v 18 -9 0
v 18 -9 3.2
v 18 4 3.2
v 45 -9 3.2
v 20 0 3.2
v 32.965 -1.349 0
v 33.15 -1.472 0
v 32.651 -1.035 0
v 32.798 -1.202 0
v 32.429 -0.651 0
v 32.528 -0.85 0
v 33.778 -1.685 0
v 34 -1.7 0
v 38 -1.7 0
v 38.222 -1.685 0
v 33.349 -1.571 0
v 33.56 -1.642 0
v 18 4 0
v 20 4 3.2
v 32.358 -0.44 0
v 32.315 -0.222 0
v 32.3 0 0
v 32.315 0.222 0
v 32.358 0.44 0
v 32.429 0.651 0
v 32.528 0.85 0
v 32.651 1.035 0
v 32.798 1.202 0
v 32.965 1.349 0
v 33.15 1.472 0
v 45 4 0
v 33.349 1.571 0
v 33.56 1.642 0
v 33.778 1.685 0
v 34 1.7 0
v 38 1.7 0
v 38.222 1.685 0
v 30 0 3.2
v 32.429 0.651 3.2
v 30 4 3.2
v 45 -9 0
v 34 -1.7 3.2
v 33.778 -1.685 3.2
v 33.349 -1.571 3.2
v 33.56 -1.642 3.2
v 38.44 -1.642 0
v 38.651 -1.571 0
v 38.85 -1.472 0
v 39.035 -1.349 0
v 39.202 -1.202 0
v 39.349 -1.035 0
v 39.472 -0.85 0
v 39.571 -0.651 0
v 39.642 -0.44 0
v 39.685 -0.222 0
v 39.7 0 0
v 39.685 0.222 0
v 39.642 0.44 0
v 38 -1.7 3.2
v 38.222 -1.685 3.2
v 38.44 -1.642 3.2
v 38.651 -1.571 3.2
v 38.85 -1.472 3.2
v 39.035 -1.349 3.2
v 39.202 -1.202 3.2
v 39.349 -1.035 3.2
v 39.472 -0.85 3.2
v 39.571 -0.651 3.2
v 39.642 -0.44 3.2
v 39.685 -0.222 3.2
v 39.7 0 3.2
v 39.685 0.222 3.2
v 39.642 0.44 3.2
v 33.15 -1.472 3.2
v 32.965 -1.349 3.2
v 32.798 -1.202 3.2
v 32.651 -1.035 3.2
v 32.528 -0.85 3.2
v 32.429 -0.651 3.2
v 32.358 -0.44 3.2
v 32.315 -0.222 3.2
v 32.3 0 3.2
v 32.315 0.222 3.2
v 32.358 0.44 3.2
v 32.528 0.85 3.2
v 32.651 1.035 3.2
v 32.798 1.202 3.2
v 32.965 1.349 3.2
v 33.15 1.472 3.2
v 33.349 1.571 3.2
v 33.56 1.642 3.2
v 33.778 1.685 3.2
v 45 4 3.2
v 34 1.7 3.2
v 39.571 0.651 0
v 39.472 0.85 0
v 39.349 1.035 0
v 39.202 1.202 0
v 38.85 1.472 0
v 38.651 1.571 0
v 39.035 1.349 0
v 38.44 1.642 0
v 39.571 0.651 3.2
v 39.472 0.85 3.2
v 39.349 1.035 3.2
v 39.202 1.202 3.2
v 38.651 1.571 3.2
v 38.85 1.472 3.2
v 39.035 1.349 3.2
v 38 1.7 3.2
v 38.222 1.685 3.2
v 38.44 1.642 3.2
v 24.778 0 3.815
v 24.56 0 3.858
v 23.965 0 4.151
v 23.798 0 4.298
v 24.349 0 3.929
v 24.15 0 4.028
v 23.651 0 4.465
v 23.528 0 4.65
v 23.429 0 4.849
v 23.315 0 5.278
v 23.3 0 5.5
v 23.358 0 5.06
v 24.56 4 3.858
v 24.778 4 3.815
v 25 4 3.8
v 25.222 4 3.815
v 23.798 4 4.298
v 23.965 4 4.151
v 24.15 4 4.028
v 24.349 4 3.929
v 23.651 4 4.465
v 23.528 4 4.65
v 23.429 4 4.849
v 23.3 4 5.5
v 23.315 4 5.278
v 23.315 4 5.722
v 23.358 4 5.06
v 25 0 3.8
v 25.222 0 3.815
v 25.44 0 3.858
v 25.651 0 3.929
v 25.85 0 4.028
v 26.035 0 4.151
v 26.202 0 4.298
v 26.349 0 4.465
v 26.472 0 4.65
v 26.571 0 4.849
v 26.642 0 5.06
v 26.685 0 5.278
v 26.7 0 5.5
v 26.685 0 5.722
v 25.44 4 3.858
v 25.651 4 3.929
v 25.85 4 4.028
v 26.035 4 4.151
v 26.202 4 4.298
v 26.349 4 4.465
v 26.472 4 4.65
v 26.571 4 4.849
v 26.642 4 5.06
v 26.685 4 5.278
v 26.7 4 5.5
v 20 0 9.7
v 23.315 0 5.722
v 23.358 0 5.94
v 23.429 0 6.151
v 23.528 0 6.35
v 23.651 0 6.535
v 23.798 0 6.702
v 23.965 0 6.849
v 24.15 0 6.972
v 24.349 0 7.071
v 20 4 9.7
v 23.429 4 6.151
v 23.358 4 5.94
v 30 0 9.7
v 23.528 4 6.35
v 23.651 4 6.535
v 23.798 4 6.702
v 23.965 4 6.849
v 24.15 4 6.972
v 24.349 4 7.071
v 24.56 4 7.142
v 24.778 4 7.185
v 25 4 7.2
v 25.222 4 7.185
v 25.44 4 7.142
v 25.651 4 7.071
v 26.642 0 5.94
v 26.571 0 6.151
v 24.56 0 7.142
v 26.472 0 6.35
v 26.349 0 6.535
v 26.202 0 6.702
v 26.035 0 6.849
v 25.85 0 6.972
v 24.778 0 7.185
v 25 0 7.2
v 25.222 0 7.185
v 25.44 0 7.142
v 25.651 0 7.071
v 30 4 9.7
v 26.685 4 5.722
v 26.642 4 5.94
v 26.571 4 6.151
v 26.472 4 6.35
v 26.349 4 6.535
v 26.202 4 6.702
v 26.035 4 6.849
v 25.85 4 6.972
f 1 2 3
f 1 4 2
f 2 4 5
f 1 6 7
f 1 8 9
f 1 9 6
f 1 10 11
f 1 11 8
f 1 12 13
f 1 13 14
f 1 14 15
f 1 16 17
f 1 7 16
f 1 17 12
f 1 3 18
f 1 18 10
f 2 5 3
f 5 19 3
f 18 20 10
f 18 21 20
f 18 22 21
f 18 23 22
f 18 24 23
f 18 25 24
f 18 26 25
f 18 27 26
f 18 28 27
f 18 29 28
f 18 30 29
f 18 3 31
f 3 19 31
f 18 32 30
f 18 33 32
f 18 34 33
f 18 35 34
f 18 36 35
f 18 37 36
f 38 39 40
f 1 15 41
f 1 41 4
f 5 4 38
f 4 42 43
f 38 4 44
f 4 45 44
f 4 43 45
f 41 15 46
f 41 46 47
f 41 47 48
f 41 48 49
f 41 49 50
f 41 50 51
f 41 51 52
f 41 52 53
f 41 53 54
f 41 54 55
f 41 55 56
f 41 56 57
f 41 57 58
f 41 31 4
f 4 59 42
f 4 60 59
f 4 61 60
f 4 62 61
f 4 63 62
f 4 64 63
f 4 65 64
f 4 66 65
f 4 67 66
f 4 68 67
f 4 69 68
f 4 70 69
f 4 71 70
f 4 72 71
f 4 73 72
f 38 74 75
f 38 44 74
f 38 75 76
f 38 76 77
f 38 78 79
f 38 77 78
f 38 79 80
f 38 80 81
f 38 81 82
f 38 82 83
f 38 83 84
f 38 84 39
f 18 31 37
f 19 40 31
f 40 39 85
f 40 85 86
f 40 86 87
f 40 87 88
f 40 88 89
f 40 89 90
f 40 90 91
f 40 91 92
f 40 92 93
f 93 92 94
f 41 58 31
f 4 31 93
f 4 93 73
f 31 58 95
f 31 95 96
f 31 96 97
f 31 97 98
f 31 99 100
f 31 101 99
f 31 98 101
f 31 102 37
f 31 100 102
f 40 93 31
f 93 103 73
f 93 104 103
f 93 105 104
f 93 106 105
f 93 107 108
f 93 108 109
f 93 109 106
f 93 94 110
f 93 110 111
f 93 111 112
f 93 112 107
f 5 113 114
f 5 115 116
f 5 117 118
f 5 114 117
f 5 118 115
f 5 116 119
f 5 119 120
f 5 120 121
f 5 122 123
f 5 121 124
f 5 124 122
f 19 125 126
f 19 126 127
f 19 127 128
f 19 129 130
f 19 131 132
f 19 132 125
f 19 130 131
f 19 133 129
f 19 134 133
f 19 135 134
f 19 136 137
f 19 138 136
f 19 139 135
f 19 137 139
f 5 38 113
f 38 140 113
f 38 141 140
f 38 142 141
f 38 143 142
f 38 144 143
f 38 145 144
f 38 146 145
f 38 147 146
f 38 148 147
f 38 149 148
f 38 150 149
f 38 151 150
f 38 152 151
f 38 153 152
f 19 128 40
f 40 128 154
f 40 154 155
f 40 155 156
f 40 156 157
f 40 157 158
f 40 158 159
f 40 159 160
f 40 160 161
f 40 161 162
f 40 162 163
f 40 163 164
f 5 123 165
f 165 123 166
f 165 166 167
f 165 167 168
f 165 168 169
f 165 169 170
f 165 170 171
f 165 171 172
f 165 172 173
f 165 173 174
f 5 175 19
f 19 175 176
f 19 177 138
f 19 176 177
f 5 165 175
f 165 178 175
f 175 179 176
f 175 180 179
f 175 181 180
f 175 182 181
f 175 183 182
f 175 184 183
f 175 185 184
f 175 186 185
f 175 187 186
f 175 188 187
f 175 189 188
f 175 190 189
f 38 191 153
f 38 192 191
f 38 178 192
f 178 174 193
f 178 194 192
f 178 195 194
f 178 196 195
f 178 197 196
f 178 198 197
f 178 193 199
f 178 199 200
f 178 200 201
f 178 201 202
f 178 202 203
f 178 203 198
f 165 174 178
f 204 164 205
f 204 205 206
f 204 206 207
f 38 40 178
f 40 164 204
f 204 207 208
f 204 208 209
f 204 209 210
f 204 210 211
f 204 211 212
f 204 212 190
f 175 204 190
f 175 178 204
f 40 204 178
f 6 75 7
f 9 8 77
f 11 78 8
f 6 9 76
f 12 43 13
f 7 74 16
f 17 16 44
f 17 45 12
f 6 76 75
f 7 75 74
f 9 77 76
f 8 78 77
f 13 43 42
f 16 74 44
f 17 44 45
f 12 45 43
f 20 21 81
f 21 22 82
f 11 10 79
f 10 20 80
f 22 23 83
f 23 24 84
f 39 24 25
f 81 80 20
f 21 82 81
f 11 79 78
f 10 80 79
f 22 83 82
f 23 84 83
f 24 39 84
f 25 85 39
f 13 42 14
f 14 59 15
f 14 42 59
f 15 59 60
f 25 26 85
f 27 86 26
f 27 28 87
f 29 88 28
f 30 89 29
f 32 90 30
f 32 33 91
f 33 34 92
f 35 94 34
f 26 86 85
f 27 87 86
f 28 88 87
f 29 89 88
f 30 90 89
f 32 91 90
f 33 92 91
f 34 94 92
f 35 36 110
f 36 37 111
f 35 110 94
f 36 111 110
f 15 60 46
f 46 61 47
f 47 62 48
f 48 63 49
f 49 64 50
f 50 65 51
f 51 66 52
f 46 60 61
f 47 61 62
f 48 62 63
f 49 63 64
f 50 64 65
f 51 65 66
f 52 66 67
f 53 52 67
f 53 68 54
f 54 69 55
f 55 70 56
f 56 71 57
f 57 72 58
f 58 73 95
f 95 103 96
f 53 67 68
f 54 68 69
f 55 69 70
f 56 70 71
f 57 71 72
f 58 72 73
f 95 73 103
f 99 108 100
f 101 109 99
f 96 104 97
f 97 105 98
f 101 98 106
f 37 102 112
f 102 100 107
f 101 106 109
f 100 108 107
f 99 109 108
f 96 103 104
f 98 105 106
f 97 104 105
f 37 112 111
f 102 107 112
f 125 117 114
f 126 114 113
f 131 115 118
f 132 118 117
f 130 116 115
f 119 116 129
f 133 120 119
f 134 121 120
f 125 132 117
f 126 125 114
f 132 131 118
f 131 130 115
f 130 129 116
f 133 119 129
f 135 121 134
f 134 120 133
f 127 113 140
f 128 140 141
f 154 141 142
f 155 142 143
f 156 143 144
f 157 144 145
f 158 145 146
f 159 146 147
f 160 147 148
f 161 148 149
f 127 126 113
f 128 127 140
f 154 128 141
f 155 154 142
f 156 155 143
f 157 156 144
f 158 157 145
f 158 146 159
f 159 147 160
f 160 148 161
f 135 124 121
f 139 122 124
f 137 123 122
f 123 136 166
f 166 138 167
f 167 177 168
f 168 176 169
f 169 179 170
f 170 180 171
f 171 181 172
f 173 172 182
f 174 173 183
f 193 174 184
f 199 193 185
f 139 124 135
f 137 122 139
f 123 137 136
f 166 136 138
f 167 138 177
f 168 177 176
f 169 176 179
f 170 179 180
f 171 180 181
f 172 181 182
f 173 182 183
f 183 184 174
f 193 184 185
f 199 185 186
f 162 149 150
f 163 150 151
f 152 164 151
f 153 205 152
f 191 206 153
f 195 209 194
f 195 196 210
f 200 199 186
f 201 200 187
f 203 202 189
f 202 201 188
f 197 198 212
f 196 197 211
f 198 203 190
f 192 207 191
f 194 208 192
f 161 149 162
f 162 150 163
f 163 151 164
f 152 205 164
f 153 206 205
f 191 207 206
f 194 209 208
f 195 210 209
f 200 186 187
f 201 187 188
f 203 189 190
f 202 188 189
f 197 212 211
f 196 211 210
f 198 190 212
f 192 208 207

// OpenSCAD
// RETIRED FOR LID MOUNTING: user reports about 0.4 mm play on the lid.
// One slotted fixing has no positive anti-rotation feature. Preserve this
// version for the 40 mm rod joint bench-fit only.
// A two-point, no-drill lid fixing requires measured hole spacing and a
// confirmed way to retain both holes. Do not power the linkage with this pad.
// Do not drill the original lid from these unmeasured coordinates.
include <parameters.scad>
$fn = 48;

bell_lid_pad_length = 27.0; // PROPOSED, along lid depth
bell_lid_pad_width = 18.0; // PROPOSED, across lid
bell_lid_pad_thickness = 3.2;
bell_lid_pad_x0 = bell_lid_pivot_x - 7.0;
bell_lid_tab_width_x = 10.0;
bell_lid_tab_thickness_y = 4.0;
bell_lid_pin_height_above_pad = bell_lid_pivot_z - lid_thickness;
bell_lid_tab_crown = 2.5; // PROPOSED material above pivot hole
bell_lid_tab_height = bell_lid_pin_height_above_pad
                      + stage2_pivot_hole_d / 2 + bell_lid_tab_crown;
bell_lid_existing_hole_x = 36.0; // UNMEASURED, from hinge datum
bell_lid_existing_hole_slot = 4.0; // ±2 mm provisional adjustment

assert(bell_lid_existing_hole_x > bell_lid_pad_x0 + 8);
assert(bell_lid_existing_hole_x < bell_lid_pad_x0 + bell_lid_pad_length - 3);
assert(bell_lid_pin_height_above_pad > bell_lid_pad_thickness
       + stage2_pivot_hole_d / 2 - 1);
assert(bell_upper_rod_plane_y - bell_rod_thickness / 2
       > bell_lid_tab_thickness_y);

module lid_attachment() {
    difference() {
        union() {
            // End the base at the tab's outer face. The upper rod runs on
            // the +Y side; the previous full-width base hit its pivot end.
            translate([bell_lid_pad_x0, -bell_lid_pad_width / 2, 0])
                cube([bell_lid_pad_length,
                      bell_lid_pad_width / 2 + bell_lid_tab_thickness_y,
                      bell_lid_pad_thickness]);
            translate([bell_lid_pivot_x - bell_lid_tab_width_x / 2,
                       0, bell_lid_pad_thickness])
                cube([bell_lid_tab_width_x, bell_lid_tab_thickness_y,
                      bell_lid_tab_height - bell_lid_pad_thickness]);
        }
        // Slot is for a confirmed existing hole, with a backing washer.
        hull()
            for (dx = [-bell_lid_existing_hole_slot / 2,
                        bell_lid_existing_hole_slot / 2])
                translate([bell_lid_existing_hole_x + dx, 0, -0.1])
                    cylinder(d = stage2_pivot_hole_d,
                             h = bell_lid_pad_thickness + 0.2);
        translate([bell_lid_pivot_x, -0.1, bell_lid_pin_height_above_pad])
            rotate([-90,0,0])
                cylinder(d = stage2_pivot_hole_d,
                         h = bell_lid_tab_thickness_y + 0.2);
    }
}

lid_attachment();
